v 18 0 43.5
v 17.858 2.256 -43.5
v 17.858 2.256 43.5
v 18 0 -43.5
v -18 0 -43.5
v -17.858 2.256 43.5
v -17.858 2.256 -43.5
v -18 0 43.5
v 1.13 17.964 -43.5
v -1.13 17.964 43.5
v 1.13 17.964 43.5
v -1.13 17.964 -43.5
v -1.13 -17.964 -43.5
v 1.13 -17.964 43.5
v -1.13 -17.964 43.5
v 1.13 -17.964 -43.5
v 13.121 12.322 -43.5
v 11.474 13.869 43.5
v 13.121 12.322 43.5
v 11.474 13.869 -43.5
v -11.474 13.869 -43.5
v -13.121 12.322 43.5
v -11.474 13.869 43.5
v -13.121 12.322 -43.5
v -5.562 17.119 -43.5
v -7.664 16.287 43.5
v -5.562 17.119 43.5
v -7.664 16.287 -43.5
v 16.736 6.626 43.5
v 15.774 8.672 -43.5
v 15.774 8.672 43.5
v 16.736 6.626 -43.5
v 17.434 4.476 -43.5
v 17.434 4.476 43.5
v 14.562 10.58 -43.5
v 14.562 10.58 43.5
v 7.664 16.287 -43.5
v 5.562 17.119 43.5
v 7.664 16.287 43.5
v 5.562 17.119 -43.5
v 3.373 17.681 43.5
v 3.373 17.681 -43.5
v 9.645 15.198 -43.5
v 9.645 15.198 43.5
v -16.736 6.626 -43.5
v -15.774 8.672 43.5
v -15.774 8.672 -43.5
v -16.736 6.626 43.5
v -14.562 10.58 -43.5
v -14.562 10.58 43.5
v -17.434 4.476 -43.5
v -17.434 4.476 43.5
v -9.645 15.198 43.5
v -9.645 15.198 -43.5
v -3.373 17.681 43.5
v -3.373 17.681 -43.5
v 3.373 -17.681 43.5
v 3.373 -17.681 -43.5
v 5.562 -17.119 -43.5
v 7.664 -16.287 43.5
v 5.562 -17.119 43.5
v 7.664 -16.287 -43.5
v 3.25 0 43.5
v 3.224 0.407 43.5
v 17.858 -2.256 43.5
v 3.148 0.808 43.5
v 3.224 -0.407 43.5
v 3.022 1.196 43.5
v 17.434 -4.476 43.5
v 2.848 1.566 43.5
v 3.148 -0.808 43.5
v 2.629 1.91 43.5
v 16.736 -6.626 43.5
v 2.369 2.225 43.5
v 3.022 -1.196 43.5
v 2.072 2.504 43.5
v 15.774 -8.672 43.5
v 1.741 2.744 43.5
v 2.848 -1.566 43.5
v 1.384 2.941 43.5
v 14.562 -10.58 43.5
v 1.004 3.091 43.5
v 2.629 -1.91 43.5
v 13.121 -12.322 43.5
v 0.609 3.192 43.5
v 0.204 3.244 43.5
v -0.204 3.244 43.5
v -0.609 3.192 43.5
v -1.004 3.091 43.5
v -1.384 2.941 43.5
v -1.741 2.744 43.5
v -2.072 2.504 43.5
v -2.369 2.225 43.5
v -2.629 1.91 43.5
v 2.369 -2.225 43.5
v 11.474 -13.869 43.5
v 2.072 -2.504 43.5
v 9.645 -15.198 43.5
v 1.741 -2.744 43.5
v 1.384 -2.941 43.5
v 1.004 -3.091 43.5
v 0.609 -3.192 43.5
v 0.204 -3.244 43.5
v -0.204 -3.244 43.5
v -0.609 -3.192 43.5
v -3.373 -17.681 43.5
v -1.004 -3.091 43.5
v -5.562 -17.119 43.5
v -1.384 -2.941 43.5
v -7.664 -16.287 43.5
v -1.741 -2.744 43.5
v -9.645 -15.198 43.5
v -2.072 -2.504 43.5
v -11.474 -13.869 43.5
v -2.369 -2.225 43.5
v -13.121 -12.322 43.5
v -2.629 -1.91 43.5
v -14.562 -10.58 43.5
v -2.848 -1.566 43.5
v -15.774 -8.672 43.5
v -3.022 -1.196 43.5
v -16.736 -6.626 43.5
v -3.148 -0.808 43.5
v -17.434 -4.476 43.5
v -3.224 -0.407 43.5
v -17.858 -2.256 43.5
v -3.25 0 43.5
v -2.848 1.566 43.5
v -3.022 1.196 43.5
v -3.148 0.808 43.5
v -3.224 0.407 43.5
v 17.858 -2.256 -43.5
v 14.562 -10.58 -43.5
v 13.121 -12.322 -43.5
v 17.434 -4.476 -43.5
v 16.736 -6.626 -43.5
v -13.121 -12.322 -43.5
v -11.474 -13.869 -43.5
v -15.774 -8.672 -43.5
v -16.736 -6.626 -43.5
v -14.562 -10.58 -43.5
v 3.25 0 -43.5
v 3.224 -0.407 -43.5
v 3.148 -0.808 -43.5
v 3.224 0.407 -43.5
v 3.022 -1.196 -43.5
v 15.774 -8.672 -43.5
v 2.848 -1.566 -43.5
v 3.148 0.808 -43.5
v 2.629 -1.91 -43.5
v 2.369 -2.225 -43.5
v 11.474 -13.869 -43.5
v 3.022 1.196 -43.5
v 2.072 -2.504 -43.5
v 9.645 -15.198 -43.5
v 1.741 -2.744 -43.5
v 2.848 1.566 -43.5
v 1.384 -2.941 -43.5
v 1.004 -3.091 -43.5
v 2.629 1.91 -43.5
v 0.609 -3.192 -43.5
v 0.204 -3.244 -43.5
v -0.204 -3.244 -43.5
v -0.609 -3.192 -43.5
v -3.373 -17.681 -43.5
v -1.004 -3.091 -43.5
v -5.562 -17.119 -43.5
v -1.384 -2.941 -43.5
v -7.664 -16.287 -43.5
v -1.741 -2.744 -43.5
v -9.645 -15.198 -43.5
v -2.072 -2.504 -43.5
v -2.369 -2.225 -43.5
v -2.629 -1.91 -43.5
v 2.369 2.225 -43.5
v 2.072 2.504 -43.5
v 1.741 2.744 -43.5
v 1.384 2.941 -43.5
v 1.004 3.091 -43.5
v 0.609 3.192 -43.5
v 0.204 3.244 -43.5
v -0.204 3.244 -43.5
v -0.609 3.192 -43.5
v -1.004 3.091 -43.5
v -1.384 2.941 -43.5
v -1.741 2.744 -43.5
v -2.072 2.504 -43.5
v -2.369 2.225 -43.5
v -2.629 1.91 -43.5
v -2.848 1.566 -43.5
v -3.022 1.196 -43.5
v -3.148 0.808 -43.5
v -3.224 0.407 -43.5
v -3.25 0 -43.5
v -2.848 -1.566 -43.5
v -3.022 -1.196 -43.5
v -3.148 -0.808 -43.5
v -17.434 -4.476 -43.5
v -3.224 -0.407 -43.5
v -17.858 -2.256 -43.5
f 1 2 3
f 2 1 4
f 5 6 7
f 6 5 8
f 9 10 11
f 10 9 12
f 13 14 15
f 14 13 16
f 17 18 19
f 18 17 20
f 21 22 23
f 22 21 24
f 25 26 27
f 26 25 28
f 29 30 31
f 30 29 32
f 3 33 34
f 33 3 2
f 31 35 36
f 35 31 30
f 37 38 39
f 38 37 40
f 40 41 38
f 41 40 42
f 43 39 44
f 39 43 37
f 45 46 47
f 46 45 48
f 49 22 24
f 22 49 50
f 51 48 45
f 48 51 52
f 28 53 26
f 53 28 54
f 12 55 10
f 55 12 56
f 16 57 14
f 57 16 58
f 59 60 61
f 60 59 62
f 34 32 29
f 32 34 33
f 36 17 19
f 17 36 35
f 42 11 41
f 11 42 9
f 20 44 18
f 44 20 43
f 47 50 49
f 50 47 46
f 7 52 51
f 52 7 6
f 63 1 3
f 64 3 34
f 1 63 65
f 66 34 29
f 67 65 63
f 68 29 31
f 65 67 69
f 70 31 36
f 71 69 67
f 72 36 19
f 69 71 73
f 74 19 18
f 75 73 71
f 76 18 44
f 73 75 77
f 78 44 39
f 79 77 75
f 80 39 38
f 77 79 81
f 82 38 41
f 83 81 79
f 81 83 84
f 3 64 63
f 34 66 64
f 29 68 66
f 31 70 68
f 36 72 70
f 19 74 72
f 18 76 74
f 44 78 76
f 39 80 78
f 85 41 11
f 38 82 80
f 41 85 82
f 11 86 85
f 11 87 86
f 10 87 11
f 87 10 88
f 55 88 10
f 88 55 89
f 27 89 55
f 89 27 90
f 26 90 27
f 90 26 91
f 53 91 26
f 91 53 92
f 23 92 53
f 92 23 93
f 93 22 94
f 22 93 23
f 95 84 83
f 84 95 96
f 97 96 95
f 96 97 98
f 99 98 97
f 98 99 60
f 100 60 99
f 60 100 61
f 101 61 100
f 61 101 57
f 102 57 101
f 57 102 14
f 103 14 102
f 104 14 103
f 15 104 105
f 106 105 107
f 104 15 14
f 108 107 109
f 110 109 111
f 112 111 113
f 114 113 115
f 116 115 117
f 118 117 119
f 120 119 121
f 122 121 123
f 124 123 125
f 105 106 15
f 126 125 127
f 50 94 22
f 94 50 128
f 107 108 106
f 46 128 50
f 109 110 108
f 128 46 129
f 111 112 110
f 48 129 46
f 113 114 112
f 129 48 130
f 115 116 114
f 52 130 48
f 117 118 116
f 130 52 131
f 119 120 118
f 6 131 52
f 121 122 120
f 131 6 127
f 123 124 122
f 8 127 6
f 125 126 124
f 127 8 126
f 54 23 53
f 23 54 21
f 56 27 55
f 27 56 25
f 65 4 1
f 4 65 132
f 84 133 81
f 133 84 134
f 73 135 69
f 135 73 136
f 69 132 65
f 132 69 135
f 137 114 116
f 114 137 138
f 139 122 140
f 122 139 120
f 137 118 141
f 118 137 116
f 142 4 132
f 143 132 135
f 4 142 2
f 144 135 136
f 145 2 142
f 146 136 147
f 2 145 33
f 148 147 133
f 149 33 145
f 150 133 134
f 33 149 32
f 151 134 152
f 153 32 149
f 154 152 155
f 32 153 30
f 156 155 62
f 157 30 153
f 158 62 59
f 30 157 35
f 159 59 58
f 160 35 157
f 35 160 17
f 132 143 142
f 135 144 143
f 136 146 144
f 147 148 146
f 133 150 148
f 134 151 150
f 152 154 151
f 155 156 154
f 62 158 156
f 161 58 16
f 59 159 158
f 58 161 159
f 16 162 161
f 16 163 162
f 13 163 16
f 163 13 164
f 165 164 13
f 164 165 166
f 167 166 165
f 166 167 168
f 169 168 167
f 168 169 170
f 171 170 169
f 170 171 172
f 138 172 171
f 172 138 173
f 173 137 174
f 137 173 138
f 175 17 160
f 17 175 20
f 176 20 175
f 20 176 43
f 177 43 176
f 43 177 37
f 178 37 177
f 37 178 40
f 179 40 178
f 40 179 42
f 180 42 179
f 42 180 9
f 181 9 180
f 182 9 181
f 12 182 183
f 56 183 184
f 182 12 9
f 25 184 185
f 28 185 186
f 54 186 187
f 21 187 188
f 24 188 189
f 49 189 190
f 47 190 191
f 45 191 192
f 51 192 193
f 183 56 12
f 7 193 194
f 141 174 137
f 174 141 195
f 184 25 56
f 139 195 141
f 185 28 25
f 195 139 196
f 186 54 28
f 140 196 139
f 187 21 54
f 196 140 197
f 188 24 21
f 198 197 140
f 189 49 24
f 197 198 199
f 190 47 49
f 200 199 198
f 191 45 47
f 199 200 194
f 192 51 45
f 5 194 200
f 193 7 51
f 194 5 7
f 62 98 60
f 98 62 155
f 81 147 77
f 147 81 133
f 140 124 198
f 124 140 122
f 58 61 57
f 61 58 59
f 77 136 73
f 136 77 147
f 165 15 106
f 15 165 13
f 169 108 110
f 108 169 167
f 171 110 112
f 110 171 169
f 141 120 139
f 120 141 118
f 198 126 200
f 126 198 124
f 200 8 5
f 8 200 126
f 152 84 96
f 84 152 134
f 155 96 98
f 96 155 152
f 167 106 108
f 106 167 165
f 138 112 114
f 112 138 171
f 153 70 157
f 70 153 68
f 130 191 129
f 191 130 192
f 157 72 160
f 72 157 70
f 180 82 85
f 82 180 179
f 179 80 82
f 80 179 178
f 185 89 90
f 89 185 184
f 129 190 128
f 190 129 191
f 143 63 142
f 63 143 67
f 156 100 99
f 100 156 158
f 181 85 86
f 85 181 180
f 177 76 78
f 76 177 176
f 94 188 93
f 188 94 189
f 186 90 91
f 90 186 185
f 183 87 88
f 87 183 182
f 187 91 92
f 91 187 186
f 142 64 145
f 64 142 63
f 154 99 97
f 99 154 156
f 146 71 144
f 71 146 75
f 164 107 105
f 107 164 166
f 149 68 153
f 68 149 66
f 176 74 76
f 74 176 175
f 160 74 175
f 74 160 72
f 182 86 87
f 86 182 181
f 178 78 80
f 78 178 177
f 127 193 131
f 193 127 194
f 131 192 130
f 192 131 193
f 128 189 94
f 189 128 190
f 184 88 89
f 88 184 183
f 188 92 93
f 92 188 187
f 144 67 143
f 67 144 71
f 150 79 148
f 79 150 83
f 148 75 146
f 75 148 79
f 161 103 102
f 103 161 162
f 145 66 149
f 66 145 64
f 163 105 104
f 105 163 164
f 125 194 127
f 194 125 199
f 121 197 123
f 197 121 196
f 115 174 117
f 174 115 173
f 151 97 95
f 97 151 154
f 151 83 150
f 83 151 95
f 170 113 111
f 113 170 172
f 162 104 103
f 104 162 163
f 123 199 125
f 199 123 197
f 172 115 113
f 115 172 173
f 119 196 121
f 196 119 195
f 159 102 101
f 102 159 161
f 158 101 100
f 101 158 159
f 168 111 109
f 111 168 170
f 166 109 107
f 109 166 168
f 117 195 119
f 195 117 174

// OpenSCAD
$fn = 50;


difference() {
	union() {
		translate(v = [0, 0, -43.5000000000]) {
			cylinder(h = 87, r = 18.0000000000);
		}
	}
	union() {
		translate(v = [0, 0, -100.0000000000]) {
			cylinder(h = 200, r = 3.2500000000);
		}
	}
}
